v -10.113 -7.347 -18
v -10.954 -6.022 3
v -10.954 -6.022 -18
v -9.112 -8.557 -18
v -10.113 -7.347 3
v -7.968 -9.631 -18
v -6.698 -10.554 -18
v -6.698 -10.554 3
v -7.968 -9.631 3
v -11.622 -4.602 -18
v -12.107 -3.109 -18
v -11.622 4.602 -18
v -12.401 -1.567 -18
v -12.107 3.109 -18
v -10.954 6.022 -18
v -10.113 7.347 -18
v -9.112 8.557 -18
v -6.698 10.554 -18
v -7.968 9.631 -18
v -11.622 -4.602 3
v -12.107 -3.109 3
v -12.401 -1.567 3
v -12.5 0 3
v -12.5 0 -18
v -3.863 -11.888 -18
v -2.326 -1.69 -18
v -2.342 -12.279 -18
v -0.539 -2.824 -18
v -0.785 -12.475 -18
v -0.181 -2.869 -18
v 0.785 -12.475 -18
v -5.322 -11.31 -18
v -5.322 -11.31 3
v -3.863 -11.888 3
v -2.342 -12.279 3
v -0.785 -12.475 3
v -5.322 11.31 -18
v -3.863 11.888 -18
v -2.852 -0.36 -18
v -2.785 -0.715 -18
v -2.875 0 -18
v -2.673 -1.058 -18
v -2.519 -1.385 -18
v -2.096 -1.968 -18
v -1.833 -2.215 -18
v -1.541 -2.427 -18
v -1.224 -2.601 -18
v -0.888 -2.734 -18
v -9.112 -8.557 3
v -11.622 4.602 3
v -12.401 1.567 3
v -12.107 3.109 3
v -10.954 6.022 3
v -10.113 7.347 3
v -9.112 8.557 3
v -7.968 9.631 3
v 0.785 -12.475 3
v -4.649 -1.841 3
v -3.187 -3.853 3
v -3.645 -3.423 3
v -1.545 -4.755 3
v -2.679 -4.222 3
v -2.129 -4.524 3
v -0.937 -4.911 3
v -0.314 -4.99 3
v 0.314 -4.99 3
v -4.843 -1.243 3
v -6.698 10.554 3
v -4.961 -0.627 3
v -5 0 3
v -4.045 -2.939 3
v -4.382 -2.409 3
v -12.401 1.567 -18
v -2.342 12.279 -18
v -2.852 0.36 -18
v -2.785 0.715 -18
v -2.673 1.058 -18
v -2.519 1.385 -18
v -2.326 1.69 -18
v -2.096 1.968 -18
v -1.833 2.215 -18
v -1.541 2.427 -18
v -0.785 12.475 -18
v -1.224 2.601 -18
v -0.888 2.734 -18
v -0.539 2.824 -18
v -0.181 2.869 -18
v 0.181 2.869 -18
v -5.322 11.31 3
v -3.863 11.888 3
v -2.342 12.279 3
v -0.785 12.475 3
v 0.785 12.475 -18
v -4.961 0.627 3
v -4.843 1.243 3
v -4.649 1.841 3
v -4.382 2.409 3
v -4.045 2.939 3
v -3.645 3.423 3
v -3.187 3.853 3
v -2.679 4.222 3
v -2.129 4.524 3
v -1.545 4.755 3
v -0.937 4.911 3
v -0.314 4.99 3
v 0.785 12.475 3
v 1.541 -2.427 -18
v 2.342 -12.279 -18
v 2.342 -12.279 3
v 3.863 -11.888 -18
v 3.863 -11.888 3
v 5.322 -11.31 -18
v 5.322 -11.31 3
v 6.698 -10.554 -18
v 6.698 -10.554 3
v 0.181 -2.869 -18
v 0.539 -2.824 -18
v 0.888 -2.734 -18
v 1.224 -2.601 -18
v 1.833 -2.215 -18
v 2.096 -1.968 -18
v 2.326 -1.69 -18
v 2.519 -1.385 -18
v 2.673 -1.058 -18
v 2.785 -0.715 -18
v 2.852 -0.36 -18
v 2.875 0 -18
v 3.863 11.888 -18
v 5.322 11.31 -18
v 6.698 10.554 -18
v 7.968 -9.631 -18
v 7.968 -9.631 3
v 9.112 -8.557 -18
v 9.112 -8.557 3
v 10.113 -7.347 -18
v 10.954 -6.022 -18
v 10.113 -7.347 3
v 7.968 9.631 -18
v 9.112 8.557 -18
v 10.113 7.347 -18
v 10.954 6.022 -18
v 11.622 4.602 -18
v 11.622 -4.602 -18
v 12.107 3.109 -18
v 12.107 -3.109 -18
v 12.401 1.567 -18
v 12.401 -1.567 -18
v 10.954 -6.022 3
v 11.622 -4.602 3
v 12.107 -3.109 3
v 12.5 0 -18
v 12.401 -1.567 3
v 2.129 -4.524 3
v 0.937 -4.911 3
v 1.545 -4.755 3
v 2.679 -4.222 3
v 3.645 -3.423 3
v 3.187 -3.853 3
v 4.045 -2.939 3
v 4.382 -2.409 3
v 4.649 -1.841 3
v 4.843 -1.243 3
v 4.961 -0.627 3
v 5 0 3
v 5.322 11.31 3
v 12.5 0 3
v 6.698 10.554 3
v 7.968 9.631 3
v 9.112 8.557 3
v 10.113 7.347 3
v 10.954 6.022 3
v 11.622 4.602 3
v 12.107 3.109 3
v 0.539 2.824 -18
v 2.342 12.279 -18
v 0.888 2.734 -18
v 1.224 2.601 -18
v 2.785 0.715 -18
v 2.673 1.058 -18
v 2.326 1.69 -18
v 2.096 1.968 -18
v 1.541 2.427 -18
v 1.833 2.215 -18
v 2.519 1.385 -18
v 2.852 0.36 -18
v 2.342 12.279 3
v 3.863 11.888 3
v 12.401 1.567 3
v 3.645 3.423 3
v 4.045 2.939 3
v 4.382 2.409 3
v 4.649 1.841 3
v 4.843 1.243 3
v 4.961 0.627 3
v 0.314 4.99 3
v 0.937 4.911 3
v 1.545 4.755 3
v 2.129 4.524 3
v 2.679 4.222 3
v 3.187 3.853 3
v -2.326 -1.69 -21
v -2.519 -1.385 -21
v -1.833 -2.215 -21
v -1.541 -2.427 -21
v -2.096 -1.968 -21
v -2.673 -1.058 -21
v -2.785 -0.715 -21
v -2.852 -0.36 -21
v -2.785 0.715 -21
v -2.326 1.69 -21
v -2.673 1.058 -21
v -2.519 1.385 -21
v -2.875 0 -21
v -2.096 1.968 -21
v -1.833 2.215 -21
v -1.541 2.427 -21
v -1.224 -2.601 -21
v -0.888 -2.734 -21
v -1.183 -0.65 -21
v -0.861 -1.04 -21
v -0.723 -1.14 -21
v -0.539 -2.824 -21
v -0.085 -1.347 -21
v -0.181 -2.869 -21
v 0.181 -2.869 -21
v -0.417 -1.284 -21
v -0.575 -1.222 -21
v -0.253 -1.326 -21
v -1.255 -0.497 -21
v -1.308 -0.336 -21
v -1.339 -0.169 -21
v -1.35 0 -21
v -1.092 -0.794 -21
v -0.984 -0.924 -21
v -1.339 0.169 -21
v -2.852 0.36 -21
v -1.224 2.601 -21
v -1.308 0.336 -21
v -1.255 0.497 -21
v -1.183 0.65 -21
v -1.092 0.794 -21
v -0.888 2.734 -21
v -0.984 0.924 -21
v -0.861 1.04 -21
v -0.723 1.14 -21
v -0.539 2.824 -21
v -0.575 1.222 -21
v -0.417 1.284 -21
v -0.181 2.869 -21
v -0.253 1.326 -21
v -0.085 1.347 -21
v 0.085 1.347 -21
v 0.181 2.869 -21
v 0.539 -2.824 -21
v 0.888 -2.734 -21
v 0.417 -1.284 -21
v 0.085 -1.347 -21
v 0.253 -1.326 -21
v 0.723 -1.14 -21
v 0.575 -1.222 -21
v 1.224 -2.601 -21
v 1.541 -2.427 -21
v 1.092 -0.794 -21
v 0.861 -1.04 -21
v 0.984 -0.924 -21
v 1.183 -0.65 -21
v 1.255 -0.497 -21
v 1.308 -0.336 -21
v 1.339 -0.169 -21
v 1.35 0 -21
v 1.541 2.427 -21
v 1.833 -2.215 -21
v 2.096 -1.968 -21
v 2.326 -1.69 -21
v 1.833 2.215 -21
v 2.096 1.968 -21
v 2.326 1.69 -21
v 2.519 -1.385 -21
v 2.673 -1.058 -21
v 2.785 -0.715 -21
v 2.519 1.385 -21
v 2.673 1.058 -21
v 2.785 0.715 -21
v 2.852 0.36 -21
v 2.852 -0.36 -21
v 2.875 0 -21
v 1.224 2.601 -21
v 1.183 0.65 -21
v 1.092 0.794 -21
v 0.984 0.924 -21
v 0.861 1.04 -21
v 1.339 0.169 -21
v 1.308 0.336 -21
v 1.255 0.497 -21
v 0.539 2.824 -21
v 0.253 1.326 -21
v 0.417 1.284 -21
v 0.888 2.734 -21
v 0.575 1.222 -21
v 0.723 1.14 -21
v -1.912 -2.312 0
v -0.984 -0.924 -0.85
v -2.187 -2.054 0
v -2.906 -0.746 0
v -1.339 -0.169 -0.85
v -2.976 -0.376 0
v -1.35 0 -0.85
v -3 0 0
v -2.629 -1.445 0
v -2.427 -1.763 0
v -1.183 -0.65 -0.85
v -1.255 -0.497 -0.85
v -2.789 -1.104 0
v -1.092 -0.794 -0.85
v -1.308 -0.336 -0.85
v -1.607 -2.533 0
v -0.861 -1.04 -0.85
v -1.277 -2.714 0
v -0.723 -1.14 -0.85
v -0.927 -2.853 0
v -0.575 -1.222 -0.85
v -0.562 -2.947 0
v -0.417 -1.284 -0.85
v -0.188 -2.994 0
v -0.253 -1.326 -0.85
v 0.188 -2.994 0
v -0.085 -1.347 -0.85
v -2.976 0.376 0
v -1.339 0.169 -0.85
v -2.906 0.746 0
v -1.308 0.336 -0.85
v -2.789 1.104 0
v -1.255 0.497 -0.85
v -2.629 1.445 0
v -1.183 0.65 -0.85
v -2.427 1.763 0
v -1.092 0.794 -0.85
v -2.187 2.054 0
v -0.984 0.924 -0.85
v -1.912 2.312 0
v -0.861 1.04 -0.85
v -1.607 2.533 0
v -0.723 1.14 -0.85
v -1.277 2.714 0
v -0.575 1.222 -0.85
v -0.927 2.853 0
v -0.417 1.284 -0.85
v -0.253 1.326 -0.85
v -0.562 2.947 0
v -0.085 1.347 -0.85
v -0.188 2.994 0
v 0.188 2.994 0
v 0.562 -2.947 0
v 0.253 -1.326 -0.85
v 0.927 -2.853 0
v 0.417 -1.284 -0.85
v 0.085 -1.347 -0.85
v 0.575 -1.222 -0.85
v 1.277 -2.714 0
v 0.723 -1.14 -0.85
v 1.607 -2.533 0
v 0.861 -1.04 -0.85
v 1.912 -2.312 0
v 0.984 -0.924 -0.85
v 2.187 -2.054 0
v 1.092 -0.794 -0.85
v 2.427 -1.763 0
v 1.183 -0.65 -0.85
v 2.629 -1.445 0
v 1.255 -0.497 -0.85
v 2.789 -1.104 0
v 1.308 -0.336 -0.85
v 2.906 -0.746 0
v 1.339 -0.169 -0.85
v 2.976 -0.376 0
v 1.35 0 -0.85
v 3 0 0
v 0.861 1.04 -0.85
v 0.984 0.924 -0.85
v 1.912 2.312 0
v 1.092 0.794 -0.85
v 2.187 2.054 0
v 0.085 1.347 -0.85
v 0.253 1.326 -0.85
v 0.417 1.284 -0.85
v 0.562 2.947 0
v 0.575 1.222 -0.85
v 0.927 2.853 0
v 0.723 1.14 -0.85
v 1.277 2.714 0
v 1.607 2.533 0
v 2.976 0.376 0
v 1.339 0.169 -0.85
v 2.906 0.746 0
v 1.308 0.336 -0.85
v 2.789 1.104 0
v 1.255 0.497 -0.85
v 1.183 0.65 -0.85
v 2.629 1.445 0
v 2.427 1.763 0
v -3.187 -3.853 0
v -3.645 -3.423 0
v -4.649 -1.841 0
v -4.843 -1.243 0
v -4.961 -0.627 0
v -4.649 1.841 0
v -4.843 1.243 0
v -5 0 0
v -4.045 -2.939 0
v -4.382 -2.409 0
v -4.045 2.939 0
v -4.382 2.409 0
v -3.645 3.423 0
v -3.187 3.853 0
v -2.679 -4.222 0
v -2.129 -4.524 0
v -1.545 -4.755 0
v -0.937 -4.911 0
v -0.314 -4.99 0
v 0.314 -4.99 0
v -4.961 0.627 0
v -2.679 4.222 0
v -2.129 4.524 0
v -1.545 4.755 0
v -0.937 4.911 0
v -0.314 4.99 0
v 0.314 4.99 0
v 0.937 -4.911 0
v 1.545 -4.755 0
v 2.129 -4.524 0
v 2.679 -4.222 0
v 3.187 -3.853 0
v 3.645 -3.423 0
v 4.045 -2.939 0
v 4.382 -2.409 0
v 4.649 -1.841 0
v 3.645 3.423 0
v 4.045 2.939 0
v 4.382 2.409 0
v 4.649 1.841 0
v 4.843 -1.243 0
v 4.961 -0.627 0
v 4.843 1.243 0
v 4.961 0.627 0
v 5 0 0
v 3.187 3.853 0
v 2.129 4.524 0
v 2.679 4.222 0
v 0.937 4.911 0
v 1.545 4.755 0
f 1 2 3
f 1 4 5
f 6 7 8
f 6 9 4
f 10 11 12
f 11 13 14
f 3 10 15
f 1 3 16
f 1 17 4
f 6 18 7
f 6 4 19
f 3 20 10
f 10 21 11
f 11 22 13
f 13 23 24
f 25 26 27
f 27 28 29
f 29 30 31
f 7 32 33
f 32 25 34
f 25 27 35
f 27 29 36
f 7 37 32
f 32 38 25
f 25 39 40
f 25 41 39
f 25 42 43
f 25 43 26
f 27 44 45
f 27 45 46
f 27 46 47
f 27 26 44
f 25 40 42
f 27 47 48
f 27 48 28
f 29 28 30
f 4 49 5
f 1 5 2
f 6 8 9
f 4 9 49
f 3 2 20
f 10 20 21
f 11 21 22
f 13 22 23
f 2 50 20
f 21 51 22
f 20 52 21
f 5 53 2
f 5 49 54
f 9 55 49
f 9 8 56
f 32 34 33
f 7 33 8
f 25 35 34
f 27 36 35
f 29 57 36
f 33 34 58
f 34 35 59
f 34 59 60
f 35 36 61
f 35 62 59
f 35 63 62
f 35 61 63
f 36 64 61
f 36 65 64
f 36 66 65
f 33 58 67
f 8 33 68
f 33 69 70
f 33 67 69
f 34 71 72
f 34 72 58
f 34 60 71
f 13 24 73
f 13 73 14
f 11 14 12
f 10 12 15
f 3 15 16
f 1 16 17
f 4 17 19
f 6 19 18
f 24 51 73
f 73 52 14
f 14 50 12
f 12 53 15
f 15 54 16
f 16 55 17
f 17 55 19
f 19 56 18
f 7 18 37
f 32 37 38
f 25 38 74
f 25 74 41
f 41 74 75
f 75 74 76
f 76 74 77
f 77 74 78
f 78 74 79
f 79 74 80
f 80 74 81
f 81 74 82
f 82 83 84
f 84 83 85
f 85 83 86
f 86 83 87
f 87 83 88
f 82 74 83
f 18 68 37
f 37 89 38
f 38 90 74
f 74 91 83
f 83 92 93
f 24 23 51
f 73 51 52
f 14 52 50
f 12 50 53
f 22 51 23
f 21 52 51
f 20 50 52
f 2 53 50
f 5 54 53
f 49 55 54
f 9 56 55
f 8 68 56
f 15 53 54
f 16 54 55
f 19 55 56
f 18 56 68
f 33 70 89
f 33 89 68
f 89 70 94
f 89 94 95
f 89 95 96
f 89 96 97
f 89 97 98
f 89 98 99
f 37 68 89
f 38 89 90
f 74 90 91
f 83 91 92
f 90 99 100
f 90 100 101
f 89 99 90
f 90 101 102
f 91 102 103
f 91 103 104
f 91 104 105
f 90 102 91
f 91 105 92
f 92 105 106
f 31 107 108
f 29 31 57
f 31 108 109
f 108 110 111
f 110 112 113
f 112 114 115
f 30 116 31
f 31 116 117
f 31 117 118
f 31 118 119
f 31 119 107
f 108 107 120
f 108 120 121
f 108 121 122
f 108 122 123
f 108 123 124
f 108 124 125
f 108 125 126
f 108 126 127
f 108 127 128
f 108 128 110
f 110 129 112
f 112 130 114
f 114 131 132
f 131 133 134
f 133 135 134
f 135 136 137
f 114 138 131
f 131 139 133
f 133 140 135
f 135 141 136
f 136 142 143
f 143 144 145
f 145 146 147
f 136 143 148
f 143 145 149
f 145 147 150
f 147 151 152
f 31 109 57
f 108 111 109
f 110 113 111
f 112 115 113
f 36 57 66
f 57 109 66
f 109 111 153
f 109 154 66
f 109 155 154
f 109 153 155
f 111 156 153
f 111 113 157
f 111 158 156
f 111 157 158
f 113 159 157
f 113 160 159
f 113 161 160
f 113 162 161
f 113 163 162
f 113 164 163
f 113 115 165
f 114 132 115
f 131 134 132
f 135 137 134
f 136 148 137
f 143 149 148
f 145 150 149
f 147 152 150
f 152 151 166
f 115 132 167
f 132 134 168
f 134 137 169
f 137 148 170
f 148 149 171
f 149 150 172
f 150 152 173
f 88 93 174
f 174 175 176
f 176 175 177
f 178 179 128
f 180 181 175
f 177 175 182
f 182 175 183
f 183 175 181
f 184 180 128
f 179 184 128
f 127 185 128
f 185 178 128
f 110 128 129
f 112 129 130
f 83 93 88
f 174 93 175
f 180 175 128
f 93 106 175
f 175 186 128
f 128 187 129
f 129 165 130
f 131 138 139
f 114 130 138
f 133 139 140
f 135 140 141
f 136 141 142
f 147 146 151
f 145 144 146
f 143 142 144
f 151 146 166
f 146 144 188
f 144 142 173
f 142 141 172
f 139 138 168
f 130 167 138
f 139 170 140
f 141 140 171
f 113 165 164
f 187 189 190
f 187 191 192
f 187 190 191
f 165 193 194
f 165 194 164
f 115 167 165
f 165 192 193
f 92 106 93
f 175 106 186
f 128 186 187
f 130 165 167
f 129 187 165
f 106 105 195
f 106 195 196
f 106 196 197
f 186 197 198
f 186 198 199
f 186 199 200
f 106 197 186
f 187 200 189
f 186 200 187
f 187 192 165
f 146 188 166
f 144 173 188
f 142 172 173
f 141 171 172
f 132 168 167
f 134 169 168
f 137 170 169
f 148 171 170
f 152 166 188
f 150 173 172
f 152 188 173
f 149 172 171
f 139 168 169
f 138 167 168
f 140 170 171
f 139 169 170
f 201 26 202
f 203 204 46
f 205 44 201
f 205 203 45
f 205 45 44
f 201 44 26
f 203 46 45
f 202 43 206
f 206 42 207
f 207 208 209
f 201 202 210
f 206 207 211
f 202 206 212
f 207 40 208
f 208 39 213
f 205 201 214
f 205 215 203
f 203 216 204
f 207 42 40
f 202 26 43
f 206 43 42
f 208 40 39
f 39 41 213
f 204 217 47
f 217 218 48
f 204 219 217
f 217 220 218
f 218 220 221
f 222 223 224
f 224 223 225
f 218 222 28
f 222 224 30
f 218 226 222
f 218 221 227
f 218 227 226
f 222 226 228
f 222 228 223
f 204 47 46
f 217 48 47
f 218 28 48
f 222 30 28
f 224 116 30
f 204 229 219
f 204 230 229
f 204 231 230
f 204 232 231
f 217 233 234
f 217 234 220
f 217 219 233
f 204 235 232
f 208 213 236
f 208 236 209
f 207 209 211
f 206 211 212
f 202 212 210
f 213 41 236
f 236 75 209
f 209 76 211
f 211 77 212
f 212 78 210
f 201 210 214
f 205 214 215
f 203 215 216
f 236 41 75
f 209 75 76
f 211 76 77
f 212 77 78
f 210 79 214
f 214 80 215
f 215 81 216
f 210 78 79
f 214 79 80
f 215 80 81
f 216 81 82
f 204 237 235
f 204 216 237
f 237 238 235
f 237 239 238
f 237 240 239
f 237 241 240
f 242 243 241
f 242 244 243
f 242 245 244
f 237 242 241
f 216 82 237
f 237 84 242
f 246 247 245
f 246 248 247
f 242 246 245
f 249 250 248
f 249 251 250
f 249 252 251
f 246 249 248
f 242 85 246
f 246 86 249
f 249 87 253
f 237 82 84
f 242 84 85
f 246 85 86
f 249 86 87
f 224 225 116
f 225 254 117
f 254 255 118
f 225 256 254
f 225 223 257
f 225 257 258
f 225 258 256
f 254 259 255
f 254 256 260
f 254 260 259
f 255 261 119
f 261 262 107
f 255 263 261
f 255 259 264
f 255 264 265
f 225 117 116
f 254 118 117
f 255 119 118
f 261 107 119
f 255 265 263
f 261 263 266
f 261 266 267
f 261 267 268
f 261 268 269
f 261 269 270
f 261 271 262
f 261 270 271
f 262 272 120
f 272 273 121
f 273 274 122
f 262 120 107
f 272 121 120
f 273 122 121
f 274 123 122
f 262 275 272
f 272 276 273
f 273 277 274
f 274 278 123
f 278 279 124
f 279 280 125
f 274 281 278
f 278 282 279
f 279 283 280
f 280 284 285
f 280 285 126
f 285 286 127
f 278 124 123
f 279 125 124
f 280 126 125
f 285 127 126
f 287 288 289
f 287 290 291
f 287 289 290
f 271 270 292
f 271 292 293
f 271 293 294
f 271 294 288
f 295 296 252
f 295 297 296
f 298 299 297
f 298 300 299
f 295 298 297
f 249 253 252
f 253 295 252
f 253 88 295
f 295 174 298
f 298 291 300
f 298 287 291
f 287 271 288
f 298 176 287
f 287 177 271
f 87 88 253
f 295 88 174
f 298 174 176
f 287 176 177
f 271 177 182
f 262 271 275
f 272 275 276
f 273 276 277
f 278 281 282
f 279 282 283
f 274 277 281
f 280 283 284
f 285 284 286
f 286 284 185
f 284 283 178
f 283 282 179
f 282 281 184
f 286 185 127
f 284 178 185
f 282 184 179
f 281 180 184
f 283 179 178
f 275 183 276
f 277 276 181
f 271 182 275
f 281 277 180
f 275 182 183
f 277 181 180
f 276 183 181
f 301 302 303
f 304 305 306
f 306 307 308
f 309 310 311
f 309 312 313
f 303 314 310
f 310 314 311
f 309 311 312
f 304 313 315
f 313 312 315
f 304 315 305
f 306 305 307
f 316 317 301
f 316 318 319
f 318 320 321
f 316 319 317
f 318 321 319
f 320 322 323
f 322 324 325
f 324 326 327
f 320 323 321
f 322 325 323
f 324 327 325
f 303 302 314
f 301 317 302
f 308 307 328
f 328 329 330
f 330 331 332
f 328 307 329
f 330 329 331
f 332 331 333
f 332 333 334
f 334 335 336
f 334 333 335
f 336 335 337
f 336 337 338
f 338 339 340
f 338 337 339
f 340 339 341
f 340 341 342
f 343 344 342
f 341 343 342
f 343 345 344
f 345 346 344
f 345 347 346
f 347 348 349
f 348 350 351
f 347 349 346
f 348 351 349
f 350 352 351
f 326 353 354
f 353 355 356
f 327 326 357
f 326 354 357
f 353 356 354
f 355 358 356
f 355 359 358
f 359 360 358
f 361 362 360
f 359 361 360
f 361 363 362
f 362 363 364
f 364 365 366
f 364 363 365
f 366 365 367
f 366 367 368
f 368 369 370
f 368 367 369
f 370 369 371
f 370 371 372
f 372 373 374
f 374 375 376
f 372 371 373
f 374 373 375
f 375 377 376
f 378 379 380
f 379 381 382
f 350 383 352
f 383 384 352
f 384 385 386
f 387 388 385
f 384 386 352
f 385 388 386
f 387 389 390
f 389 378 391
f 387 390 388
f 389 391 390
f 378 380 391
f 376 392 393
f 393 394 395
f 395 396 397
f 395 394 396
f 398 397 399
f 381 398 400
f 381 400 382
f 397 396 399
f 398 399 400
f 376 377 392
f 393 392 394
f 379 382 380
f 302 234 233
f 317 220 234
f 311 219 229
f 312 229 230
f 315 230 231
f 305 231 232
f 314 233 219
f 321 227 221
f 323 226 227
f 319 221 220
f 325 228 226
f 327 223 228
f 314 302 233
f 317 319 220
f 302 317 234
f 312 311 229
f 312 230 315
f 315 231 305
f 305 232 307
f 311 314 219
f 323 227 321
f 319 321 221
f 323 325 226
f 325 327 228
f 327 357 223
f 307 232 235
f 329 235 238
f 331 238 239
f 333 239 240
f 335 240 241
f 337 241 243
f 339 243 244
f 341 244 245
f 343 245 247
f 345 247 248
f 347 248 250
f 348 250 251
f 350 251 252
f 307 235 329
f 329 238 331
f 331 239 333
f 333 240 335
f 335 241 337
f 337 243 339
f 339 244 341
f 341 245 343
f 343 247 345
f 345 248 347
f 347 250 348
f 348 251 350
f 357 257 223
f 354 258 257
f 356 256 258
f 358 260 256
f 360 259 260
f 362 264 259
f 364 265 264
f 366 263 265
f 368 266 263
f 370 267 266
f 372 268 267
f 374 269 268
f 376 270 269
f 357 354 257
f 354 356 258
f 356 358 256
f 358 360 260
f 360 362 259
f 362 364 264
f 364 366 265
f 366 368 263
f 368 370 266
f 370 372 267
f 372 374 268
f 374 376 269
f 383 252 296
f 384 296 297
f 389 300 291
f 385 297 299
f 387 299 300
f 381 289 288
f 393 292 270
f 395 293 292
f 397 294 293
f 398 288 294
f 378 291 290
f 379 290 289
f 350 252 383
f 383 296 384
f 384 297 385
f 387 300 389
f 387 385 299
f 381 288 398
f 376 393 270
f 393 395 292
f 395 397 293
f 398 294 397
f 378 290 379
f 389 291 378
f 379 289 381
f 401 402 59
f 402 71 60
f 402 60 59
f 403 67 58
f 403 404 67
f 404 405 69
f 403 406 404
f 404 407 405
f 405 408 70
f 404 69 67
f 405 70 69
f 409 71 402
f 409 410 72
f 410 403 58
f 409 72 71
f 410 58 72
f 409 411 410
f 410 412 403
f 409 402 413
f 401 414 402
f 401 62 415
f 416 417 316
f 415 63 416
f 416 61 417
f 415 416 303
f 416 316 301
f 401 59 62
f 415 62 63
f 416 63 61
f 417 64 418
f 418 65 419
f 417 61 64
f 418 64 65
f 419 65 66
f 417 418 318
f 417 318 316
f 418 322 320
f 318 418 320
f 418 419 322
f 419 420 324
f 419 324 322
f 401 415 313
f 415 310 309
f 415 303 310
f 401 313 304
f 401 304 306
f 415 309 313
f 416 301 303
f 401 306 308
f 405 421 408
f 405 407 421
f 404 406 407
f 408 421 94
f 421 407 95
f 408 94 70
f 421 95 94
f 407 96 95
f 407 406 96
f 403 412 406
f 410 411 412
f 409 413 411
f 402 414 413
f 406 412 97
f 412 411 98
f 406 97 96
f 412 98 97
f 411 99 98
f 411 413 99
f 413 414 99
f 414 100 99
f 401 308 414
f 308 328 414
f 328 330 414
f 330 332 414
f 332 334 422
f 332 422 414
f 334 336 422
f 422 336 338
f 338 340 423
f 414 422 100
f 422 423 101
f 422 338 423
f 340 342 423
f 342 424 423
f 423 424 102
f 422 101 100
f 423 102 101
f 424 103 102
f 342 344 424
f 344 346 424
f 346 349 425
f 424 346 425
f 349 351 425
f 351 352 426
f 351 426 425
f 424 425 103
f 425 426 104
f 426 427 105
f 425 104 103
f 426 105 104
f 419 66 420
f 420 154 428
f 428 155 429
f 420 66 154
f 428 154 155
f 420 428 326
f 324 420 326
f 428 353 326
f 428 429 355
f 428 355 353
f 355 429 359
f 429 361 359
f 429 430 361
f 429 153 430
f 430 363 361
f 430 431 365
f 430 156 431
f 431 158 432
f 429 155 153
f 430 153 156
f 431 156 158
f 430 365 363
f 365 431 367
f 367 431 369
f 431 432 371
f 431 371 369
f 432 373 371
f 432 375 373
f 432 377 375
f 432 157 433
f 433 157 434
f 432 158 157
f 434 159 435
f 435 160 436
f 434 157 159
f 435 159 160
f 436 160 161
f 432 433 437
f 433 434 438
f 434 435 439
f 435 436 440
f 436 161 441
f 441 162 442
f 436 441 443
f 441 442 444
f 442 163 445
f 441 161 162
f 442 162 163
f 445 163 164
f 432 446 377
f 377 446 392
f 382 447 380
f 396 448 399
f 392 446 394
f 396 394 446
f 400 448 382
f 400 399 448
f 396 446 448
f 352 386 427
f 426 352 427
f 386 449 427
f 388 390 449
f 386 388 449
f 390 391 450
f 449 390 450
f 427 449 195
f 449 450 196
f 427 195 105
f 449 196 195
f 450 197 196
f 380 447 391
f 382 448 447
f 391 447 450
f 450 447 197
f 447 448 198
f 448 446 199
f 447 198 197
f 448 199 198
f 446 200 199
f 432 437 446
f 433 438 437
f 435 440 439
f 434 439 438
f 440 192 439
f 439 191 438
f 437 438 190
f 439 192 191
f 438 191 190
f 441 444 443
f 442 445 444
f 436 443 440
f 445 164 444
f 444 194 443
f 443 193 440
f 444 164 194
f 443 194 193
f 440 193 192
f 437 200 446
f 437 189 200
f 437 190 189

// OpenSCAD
$fn = 50;


difference() {
	union() {
		translate(v = [0, 0, -18.0000000000]) {
			cylinder(h = 21, r = 12.5000000000);
		}
		#translate(v = [0, 0, -21.0000000000]) {
			cylinder(h = 21, r = 2.8750000000);
		}
	}
	union() {
		translate(v = [0, 0, 0]) {
			rotate(a = [0, 0, 0]) {
				difference() {
					union() {
						translate(v = [0, 0, -21.0000000000]) {
							cylinder(h = 21, r = 1.0000000000);
						}
						translate(v = [0, 0, -0.8500000000]) {
							cylinder(h = 0.8500000000, r1 = 1.3500000000, r2 = 3.0000000000);
						}
						translate(v = [0, 0, -21.0000000000]) {
							cylinder(h = 21, r = 1.3500000000);
						}
						translate(v = [0, 0, -21.0000000000]) {
							cylinder(h = 21, r = 1.0000000000);
						}
					}
					union();
				}
			}
		}
		#cylinder(h = 3, r = 5.0000000000);
	}
}
